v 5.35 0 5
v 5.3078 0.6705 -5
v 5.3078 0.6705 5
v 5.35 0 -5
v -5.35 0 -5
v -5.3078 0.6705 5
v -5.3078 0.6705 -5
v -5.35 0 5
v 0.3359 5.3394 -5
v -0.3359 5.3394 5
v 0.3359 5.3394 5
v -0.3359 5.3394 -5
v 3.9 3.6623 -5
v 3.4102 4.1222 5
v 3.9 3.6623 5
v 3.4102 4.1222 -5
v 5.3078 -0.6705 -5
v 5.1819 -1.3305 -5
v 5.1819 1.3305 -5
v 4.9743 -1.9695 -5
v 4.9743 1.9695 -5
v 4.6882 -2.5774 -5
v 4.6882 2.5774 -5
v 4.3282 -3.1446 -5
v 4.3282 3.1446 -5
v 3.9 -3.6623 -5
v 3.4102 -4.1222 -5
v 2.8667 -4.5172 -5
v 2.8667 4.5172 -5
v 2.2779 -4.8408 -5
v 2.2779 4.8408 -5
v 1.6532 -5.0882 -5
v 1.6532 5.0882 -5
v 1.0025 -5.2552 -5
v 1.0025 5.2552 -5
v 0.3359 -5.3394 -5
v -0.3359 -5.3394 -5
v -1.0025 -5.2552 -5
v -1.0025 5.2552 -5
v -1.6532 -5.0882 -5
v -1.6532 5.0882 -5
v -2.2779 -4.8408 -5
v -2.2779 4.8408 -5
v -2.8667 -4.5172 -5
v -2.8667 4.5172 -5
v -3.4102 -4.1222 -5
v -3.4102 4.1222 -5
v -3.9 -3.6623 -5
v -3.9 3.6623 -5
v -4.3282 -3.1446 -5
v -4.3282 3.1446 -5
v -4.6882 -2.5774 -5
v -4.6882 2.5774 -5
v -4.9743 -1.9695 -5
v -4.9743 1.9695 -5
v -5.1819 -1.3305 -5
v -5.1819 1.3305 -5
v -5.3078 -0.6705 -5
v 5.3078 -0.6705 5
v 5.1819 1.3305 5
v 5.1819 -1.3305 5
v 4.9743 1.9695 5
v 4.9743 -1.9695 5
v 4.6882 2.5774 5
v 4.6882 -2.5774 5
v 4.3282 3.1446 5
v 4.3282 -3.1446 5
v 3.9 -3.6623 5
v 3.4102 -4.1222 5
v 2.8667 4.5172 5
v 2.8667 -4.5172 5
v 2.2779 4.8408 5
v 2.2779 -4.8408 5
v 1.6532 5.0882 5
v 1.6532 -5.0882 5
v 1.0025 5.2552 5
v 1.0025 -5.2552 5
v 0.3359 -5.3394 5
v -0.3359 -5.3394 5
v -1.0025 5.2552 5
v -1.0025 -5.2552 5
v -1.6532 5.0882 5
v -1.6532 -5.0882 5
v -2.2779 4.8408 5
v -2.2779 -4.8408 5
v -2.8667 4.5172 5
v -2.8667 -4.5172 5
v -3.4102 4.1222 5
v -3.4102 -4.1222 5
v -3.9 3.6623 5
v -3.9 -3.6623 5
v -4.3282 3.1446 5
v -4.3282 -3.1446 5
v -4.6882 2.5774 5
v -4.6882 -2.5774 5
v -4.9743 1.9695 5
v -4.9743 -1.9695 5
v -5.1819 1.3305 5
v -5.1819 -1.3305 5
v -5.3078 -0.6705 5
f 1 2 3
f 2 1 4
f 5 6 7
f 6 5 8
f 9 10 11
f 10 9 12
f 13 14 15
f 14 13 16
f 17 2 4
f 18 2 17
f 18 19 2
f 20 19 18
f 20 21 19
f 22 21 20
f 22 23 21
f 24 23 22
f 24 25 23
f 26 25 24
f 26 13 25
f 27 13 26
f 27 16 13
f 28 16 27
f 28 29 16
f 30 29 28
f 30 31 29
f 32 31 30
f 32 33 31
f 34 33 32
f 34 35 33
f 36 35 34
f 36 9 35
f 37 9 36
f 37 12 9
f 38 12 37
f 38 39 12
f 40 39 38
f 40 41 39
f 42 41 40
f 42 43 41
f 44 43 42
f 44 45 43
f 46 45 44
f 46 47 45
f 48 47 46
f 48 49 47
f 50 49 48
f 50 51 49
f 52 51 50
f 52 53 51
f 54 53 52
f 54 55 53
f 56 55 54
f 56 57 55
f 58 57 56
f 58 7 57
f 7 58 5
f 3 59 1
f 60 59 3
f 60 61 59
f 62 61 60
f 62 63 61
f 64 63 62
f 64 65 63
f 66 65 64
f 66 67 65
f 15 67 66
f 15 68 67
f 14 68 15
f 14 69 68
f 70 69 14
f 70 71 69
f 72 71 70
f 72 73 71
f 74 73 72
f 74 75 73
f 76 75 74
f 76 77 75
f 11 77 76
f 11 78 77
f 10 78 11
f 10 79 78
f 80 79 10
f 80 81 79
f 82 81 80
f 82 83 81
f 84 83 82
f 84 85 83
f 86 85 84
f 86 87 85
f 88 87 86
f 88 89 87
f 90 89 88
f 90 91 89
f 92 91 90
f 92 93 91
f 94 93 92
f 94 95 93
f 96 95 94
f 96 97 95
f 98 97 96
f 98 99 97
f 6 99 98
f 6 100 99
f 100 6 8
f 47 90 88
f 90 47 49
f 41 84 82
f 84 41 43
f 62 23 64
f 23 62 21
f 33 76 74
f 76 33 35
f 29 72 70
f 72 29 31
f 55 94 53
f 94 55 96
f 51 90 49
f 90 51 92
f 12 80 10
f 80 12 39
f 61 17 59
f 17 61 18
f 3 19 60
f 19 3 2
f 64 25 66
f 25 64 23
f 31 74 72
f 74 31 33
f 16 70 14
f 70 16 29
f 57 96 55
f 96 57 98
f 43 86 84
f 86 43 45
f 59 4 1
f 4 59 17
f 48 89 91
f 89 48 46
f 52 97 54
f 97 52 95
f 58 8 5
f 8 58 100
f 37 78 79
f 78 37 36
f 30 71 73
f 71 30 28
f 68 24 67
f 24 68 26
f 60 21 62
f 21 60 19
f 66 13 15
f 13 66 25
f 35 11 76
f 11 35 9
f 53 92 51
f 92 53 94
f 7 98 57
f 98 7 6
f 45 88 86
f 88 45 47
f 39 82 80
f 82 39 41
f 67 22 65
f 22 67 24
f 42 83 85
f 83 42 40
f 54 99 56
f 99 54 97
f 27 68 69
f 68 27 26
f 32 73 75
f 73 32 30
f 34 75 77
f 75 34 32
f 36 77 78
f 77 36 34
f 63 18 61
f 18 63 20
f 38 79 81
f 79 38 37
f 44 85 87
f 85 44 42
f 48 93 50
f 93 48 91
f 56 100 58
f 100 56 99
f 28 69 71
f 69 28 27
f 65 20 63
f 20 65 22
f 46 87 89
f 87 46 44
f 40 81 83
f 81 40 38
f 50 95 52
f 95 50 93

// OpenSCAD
$fn = 50;


difference() {
	union() {
		translate(v = [0, 0, -5.0000000000]) {
			cylinder(h = 10, r = 5.3500000000);
		}
	}
	union() {
		translate(v = [0, 0, -100.0000000000]) {
			cylinder(h = 200, r = 0);
		}
	}
}
